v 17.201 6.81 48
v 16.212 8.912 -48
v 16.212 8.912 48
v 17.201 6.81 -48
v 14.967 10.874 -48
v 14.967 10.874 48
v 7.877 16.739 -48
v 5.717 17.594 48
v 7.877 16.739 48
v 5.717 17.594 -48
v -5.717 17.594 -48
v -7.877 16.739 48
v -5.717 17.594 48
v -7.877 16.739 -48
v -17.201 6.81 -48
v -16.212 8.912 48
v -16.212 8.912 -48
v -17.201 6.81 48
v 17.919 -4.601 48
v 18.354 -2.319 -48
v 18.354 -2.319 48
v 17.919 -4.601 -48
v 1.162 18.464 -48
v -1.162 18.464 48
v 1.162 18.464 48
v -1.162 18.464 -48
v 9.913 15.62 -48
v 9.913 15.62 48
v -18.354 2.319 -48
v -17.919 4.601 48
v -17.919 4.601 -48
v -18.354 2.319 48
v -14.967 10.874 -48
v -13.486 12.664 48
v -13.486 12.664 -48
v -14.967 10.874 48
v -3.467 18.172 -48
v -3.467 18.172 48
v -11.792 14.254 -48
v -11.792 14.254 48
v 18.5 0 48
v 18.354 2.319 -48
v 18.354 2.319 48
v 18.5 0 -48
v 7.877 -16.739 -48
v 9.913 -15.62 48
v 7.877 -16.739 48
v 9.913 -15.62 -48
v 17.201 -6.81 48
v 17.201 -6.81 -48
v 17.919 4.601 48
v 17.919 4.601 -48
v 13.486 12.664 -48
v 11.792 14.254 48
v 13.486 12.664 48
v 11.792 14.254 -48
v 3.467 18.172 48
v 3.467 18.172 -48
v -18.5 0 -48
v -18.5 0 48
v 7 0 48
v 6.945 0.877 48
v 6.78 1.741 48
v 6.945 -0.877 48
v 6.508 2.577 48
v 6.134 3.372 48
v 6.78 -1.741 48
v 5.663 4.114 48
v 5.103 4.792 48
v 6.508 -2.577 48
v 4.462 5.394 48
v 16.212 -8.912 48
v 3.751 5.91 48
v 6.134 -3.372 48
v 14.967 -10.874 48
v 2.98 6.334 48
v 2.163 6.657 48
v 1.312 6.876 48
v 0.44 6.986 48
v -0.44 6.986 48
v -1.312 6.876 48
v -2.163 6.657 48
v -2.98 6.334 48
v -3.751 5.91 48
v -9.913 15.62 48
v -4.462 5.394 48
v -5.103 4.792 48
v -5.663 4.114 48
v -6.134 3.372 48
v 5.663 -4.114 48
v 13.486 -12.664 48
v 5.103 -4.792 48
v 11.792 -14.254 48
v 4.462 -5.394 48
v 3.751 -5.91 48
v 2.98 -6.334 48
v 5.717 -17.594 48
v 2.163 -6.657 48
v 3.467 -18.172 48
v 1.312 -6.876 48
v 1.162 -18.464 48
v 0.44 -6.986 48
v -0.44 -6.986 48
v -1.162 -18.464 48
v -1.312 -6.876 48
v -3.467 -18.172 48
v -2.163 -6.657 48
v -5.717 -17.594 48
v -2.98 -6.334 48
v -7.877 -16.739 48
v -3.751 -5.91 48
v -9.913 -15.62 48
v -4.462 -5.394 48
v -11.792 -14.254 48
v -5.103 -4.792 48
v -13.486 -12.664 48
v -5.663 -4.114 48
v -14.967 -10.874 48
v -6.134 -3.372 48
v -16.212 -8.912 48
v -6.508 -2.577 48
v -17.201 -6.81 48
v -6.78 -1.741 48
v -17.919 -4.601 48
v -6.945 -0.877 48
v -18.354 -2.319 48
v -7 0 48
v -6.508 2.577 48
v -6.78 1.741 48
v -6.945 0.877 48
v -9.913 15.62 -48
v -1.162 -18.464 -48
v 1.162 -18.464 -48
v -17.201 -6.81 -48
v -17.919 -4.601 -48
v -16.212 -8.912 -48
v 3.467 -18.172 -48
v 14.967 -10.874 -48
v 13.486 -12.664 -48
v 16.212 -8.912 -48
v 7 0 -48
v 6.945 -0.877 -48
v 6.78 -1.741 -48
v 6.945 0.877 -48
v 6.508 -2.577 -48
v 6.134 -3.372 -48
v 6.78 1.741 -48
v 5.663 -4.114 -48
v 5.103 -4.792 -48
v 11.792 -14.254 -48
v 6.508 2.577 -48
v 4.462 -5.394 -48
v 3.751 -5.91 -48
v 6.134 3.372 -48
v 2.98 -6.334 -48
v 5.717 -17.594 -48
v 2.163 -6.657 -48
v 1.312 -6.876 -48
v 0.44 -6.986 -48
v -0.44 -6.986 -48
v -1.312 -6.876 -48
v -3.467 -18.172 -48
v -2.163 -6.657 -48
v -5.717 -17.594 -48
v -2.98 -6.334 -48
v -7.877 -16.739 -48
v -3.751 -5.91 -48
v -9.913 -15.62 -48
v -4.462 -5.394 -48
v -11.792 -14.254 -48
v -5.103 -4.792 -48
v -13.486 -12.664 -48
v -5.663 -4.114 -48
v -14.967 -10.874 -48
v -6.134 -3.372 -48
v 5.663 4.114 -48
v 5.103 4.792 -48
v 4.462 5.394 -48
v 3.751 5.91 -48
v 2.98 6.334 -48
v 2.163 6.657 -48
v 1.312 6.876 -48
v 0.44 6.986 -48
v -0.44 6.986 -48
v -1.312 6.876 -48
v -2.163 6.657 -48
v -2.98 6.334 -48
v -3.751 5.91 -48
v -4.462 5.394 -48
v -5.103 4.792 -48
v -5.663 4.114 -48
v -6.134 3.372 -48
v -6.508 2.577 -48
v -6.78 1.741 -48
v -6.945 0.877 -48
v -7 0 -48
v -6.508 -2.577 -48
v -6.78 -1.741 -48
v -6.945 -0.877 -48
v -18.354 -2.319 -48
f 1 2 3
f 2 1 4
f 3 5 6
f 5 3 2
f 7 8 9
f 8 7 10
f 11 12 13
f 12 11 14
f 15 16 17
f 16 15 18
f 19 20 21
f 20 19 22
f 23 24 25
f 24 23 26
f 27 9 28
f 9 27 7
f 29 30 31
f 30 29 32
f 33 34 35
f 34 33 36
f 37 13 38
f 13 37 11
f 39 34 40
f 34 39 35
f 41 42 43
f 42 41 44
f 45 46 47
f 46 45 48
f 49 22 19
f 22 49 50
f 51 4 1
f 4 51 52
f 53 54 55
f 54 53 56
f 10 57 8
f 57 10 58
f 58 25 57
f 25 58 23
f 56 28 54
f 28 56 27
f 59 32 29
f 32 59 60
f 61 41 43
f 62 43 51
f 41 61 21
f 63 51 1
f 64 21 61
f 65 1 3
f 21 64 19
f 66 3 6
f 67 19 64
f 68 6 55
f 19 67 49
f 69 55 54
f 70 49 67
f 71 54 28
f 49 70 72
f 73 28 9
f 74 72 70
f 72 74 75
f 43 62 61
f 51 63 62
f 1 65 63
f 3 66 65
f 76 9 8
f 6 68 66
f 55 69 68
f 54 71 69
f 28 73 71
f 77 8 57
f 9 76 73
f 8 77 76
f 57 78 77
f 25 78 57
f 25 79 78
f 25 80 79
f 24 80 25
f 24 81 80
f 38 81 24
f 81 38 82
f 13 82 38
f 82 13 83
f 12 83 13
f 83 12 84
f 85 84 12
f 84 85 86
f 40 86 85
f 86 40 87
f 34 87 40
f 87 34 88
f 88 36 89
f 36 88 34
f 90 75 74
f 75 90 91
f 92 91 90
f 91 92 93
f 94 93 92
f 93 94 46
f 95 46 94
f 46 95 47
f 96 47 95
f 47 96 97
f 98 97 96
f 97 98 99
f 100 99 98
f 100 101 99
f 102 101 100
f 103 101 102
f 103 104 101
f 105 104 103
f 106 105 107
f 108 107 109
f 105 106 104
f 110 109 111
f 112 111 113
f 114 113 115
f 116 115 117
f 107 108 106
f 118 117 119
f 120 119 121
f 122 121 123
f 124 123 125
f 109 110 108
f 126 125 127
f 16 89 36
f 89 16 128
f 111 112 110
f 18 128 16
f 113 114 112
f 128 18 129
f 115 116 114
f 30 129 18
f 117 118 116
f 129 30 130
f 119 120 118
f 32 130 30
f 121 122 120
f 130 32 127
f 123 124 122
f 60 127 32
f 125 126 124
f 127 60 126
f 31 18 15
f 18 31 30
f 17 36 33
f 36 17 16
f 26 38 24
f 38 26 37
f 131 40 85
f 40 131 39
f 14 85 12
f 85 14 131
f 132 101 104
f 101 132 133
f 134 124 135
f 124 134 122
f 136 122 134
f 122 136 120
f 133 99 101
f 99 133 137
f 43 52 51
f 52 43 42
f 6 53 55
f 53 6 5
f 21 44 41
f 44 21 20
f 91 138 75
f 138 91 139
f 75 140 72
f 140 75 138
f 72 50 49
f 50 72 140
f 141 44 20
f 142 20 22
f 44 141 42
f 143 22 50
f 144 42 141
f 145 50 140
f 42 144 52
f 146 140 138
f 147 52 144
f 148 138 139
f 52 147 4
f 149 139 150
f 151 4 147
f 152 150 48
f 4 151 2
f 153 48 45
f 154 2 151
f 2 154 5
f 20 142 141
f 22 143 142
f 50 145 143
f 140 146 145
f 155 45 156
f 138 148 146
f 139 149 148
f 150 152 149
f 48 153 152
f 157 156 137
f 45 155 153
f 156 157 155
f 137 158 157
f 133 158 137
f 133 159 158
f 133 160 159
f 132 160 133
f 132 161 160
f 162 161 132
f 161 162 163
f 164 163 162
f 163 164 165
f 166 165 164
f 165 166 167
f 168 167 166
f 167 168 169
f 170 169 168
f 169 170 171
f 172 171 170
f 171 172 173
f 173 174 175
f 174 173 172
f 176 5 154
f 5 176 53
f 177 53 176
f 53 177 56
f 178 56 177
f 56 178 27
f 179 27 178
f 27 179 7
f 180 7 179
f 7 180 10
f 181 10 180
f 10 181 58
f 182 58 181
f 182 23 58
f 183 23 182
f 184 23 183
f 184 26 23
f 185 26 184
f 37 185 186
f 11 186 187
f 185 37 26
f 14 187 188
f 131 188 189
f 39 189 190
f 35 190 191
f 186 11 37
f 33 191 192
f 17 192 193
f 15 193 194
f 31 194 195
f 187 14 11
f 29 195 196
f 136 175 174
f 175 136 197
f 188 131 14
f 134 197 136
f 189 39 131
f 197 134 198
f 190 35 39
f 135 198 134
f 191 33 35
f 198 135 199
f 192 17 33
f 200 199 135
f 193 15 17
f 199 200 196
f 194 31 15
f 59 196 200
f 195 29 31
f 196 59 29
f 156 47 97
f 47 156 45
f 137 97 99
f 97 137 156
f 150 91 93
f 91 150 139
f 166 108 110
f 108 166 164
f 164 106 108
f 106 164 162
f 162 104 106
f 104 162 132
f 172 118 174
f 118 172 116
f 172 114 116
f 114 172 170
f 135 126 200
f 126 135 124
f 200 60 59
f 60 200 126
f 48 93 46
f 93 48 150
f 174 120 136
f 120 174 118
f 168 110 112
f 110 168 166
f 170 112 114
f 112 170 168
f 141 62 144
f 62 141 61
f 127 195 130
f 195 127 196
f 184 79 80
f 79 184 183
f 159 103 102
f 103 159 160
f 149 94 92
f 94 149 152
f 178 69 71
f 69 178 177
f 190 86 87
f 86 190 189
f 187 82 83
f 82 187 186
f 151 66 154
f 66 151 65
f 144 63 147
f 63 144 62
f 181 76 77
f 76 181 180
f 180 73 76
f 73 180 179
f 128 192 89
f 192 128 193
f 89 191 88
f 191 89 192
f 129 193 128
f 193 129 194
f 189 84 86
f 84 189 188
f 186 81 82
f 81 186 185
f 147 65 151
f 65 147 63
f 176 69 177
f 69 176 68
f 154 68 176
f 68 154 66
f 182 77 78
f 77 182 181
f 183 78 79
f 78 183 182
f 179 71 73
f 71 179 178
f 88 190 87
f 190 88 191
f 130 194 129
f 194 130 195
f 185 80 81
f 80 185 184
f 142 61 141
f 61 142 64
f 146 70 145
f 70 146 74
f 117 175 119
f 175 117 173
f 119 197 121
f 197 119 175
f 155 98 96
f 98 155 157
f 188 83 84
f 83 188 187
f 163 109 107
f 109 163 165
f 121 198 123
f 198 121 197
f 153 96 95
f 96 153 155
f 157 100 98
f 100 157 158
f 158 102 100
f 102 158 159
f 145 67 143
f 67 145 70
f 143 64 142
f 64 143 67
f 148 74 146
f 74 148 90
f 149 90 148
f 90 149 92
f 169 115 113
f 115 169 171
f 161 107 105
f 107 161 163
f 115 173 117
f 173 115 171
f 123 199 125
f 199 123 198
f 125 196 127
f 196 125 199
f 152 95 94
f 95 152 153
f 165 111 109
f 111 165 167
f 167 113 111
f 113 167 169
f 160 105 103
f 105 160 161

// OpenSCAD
$fn = 50;


difference() {
	union() {
		translate(v = [0, 0, -48.0000000000]) {
			cylinder(h = 96, r = 18.5000000000);
		}
	}
	union() {
		translate(v = [0, 0, -100.0000000000]) {
			cylinder(h = 200, r = 7);
		}
	}
}
